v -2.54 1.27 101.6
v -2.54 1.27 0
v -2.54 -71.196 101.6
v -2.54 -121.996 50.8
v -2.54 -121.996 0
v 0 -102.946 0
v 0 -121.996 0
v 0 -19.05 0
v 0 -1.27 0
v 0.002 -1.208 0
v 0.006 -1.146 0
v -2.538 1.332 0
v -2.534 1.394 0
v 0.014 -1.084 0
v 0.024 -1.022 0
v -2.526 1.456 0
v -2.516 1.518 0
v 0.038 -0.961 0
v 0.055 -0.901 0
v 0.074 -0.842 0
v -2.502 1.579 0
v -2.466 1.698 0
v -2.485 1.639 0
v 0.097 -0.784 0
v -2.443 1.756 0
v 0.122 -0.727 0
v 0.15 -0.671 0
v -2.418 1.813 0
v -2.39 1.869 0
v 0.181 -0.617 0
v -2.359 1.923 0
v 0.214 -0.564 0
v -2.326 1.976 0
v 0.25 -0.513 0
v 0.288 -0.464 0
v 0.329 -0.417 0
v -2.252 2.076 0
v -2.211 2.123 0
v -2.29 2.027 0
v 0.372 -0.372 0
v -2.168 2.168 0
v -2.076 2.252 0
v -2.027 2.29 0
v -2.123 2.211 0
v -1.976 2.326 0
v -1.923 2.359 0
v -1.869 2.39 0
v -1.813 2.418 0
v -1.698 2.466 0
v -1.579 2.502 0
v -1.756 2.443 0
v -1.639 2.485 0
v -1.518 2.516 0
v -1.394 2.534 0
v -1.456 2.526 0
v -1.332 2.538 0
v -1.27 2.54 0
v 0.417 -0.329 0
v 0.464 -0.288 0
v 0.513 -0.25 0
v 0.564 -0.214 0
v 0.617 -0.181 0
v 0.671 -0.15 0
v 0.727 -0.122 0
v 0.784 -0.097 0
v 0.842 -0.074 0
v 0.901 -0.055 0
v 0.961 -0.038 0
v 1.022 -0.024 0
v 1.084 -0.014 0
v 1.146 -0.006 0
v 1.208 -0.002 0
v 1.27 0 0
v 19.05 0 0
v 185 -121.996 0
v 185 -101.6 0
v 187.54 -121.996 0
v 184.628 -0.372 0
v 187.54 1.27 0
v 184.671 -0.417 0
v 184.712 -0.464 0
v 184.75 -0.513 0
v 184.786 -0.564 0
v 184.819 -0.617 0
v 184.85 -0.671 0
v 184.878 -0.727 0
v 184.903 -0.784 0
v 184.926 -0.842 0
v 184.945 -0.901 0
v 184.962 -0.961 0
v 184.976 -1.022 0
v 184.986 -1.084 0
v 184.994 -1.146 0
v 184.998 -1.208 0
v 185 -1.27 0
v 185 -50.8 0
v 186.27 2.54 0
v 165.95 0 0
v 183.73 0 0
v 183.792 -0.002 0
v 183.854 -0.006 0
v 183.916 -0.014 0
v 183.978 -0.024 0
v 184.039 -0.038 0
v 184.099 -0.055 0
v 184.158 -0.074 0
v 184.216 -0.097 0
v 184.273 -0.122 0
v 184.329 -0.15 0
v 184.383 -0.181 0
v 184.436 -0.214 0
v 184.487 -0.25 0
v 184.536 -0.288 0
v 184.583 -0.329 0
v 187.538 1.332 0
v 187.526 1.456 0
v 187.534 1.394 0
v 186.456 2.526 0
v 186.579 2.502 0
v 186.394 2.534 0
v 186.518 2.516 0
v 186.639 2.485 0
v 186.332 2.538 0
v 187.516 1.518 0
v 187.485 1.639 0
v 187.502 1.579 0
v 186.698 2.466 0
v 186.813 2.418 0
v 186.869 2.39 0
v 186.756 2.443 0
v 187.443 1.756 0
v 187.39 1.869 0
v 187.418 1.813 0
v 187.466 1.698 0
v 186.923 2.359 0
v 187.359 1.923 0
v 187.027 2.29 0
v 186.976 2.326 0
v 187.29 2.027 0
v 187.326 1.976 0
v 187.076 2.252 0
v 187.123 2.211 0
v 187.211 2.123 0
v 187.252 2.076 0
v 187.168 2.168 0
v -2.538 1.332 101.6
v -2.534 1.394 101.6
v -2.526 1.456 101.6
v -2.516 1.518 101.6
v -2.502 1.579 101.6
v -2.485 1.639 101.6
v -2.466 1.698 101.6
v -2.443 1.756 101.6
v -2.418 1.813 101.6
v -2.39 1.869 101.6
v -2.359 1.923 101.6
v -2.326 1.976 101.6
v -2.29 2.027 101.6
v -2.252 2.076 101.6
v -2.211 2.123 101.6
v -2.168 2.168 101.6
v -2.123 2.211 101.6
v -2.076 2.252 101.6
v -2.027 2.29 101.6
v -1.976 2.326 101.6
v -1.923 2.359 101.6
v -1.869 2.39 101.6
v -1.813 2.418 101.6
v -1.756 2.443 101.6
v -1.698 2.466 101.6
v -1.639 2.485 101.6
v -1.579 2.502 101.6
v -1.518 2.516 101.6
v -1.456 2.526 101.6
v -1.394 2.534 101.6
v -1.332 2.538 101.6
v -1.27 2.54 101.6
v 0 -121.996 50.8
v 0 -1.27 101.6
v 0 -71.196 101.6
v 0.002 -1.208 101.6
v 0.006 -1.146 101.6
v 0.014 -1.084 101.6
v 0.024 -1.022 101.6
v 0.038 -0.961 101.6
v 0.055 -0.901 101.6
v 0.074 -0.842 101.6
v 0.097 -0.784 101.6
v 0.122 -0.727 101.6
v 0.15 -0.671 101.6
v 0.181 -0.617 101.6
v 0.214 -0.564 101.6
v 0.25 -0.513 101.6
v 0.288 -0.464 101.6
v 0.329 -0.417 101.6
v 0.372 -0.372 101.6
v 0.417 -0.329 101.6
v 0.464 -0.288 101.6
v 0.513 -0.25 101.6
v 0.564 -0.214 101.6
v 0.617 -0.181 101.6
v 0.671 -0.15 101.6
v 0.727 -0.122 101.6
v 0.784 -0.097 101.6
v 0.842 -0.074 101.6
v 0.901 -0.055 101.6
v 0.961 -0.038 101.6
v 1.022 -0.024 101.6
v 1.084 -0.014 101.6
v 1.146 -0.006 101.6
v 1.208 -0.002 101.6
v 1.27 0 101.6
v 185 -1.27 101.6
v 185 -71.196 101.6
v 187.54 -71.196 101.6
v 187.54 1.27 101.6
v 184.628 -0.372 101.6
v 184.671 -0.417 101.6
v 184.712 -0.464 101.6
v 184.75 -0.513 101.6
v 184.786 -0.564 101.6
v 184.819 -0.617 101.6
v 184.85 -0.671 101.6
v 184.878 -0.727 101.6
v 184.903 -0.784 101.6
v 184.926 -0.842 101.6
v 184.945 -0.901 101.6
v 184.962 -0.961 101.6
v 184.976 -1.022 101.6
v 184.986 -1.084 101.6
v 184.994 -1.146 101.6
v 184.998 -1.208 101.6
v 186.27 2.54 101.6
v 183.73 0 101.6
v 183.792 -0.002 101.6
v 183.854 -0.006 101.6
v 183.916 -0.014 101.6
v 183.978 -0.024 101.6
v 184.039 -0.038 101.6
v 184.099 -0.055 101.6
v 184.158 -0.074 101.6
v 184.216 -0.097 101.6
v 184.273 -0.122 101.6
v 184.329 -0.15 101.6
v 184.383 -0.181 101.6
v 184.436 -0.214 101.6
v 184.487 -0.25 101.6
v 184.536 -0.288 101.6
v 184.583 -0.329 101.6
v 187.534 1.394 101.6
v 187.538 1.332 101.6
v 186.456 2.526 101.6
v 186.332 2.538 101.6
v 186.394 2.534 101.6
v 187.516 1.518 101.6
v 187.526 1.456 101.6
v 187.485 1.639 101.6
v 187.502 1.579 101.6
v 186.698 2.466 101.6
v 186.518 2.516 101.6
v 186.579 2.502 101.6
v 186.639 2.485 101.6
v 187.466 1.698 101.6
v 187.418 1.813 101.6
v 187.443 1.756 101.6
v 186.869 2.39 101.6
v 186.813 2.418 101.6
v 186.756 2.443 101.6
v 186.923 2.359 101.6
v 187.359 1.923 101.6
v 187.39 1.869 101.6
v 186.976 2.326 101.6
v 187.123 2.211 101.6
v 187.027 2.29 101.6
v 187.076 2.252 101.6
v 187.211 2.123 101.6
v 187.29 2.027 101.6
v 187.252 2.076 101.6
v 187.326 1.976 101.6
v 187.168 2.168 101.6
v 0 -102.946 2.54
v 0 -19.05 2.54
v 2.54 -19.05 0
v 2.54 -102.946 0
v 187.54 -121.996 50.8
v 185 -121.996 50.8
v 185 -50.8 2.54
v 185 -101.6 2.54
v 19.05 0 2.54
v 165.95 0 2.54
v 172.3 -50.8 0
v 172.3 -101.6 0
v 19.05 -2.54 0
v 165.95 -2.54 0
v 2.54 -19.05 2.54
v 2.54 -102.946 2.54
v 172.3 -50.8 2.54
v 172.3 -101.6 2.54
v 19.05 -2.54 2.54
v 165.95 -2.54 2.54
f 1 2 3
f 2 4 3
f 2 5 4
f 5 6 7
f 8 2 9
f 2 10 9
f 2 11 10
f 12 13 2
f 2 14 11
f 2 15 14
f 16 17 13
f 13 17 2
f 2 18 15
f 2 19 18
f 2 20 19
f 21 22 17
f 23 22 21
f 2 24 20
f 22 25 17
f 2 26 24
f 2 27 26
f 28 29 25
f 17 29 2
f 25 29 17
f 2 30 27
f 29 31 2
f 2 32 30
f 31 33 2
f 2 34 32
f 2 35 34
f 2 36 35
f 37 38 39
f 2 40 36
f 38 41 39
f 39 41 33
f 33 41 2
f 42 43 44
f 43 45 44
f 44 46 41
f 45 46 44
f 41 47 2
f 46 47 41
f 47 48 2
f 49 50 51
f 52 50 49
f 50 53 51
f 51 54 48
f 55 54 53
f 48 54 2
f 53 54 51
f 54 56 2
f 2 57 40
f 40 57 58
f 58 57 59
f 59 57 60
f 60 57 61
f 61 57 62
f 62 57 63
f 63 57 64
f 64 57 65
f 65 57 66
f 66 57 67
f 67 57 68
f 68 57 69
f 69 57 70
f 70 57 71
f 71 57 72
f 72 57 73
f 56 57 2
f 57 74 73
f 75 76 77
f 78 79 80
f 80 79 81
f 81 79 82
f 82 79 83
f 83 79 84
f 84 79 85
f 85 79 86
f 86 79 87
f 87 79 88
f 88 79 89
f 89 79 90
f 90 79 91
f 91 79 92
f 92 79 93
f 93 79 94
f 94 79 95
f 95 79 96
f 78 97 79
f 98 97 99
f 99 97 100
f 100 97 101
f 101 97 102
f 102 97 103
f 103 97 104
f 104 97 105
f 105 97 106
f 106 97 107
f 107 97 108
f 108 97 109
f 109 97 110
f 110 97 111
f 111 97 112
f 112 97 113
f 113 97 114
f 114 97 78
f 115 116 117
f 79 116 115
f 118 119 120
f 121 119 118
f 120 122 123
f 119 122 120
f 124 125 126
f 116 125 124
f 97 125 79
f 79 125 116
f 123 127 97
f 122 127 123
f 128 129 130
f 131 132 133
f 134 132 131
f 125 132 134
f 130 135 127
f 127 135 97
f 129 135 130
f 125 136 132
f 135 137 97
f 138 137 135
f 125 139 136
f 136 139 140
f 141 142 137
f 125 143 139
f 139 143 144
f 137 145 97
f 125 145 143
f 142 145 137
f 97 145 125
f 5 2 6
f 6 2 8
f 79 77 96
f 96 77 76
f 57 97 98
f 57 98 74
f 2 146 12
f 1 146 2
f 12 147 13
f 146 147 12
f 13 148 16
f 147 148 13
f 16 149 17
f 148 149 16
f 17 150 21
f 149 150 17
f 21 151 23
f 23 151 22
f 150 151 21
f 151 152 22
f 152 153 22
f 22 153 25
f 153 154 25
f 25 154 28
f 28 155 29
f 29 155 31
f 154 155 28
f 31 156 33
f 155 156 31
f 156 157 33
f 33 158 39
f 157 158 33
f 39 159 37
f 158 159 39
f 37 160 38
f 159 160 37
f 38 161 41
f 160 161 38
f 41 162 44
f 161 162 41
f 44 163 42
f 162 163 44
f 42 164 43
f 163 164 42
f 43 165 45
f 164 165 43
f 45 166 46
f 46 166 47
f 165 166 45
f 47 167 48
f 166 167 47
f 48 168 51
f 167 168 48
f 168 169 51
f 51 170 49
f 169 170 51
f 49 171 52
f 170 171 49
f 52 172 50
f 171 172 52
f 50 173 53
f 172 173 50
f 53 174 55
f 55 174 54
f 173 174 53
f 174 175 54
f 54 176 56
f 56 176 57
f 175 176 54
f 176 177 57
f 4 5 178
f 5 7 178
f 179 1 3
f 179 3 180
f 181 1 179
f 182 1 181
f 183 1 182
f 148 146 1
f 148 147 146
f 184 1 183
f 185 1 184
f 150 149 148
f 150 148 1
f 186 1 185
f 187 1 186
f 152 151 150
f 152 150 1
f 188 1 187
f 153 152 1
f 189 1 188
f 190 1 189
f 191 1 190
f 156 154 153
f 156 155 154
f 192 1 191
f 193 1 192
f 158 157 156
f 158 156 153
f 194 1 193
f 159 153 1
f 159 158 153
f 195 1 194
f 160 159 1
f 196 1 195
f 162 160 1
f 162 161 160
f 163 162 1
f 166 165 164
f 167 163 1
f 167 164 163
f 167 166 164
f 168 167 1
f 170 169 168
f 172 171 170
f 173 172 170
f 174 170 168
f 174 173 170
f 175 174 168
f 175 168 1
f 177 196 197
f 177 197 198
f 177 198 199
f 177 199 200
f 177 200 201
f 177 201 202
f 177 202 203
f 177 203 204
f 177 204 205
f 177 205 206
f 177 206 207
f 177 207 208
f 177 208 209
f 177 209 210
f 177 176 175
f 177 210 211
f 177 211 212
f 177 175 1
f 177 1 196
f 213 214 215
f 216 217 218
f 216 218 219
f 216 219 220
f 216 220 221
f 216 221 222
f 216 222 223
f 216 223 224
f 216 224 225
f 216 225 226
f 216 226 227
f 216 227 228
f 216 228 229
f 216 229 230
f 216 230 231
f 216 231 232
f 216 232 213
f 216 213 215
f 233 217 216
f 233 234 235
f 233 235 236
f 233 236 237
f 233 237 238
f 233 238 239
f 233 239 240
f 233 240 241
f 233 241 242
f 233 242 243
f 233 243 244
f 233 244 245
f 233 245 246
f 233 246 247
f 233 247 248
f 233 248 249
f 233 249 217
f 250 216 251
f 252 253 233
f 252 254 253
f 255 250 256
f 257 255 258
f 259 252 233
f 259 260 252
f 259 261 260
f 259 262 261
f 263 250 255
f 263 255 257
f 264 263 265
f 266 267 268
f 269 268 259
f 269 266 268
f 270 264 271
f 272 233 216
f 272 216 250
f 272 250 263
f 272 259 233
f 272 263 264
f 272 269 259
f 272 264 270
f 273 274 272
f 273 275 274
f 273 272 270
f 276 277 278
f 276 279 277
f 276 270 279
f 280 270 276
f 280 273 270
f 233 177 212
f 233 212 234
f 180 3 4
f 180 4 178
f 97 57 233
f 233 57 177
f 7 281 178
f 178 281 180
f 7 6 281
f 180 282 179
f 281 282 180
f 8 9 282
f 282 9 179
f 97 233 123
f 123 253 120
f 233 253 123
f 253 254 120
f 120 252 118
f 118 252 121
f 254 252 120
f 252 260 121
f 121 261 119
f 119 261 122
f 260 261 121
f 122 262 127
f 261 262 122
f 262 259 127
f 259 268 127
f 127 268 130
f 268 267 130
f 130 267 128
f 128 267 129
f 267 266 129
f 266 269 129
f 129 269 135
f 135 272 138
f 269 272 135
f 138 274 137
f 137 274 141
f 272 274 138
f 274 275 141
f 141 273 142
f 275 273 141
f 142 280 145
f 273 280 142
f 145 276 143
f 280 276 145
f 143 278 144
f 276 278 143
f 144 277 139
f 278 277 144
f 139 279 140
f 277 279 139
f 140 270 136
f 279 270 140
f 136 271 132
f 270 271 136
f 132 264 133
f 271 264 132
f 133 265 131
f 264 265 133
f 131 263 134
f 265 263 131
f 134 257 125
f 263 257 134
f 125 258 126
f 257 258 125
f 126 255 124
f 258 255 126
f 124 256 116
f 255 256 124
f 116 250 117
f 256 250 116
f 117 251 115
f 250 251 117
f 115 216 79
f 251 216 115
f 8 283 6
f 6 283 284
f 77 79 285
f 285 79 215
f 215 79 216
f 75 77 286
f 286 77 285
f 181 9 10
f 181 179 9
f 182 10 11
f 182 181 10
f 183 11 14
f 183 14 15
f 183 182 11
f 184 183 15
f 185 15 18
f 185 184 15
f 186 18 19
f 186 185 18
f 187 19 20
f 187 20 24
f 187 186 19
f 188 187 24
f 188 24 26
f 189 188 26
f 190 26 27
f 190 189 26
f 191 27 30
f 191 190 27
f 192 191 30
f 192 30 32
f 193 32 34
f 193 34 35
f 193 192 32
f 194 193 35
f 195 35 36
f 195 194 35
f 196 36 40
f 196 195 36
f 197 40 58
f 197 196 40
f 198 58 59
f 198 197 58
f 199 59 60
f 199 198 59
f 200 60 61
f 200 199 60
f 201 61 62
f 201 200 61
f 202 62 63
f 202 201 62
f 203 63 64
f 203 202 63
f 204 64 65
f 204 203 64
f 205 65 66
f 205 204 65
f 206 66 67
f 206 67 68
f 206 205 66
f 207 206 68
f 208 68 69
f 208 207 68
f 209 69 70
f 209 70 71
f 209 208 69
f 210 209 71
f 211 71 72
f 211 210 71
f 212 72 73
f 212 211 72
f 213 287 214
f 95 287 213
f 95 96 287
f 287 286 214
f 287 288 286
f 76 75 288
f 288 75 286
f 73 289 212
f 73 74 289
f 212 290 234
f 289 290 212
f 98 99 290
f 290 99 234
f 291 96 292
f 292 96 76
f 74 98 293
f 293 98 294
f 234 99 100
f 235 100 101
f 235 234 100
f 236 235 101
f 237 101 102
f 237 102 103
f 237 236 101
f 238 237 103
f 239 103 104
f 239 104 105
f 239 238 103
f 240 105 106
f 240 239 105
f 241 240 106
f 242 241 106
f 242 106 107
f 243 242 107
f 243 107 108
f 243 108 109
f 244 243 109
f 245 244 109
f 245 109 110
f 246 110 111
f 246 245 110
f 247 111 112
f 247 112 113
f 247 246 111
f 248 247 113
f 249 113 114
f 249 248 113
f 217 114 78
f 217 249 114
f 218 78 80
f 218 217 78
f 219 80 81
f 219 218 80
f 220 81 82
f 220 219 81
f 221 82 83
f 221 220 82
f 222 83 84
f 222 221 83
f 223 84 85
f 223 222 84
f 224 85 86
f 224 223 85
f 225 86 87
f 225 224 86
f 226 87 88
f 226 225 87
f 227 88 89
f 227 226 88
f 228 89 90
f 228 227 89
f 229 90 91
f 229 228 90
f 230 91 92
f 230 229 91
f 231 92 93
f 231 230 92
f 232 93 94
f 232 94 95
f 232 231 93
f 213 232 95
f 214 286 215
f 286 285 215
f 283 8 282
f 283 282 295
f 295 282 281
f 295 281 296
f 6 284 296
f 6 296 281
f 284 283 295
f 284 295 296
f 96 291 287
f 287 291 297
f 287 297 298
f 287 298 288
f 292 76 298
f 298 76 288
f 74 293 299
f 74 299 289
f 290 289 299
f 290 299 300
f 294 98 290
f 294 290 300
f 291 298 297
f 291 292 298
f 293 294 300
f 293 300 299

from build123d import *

# Parameters (mm, degrees)
PAD_DEPTH     = 101.6
SKETCH001_W   = 2.54
SKETCH001_H   = 83.8962
SKETCH001_W_2 = 12.7
SKETCH001_H_2 = 50.8
SKETCH001_W_3 = 146.9
SKETCH001_H_3 = 2.54
PAD001_DEPTH  = 2.54
CHAMFER_SIZE  = 50.8
FILLET_R      = 1.27


with BuildPart() as part:
    # Sketch → Pad (new body)
    with BuildSketch(Plane.XY):
        Polygon((-2.54, 2.54), (-2.54, -121.9962), (0, -121.9962), (0, 0), (185, 0), (185, -121.9962), (187.54, -121.9962), (187.54, 2.54), align=None)
    extrude(amount=PAD_DEPTH)

    # Sketch001 → Pad001 (join)
    with BuildSketch(Plane.XY):
        with Locations((1.27, -60.9981)):
            Rectangle(SKETCH001_W, SKETCH001_H)
        with Locations((178.65, -76.2)):
            Rectangle(SKETCH001_W_2, SKETCH001_H_2)
        with Locations((92.5, -1.27)):
            Rectangle(SKETCH001_W_3, SKETCH001_H_3)
    extrude(amount=PAD001_DEPTH)

    # Chamfer
    chamfer_edges = [part.edges().sort_by_distance(p)[0] for p in [
        (-1.27, -121.9962, 101.6),
        (186.27, -121.9962, 101.6),
    ]]
    chamfer(chamfer_edges, length=CHAMFER_SIZE)

    # Fillet
    fillet_edges = [part.edges().sort_by_distance(p)[0] for p in [
        (185, 0, 50.8),
        (0, 0, 50.8),
        (-2.54, 2.54, 50.8),
        (187.54, 2.54, 50.8),
    ]]
    fillet(fillet_edges, radius=FILLET_R)


solid = part.part
